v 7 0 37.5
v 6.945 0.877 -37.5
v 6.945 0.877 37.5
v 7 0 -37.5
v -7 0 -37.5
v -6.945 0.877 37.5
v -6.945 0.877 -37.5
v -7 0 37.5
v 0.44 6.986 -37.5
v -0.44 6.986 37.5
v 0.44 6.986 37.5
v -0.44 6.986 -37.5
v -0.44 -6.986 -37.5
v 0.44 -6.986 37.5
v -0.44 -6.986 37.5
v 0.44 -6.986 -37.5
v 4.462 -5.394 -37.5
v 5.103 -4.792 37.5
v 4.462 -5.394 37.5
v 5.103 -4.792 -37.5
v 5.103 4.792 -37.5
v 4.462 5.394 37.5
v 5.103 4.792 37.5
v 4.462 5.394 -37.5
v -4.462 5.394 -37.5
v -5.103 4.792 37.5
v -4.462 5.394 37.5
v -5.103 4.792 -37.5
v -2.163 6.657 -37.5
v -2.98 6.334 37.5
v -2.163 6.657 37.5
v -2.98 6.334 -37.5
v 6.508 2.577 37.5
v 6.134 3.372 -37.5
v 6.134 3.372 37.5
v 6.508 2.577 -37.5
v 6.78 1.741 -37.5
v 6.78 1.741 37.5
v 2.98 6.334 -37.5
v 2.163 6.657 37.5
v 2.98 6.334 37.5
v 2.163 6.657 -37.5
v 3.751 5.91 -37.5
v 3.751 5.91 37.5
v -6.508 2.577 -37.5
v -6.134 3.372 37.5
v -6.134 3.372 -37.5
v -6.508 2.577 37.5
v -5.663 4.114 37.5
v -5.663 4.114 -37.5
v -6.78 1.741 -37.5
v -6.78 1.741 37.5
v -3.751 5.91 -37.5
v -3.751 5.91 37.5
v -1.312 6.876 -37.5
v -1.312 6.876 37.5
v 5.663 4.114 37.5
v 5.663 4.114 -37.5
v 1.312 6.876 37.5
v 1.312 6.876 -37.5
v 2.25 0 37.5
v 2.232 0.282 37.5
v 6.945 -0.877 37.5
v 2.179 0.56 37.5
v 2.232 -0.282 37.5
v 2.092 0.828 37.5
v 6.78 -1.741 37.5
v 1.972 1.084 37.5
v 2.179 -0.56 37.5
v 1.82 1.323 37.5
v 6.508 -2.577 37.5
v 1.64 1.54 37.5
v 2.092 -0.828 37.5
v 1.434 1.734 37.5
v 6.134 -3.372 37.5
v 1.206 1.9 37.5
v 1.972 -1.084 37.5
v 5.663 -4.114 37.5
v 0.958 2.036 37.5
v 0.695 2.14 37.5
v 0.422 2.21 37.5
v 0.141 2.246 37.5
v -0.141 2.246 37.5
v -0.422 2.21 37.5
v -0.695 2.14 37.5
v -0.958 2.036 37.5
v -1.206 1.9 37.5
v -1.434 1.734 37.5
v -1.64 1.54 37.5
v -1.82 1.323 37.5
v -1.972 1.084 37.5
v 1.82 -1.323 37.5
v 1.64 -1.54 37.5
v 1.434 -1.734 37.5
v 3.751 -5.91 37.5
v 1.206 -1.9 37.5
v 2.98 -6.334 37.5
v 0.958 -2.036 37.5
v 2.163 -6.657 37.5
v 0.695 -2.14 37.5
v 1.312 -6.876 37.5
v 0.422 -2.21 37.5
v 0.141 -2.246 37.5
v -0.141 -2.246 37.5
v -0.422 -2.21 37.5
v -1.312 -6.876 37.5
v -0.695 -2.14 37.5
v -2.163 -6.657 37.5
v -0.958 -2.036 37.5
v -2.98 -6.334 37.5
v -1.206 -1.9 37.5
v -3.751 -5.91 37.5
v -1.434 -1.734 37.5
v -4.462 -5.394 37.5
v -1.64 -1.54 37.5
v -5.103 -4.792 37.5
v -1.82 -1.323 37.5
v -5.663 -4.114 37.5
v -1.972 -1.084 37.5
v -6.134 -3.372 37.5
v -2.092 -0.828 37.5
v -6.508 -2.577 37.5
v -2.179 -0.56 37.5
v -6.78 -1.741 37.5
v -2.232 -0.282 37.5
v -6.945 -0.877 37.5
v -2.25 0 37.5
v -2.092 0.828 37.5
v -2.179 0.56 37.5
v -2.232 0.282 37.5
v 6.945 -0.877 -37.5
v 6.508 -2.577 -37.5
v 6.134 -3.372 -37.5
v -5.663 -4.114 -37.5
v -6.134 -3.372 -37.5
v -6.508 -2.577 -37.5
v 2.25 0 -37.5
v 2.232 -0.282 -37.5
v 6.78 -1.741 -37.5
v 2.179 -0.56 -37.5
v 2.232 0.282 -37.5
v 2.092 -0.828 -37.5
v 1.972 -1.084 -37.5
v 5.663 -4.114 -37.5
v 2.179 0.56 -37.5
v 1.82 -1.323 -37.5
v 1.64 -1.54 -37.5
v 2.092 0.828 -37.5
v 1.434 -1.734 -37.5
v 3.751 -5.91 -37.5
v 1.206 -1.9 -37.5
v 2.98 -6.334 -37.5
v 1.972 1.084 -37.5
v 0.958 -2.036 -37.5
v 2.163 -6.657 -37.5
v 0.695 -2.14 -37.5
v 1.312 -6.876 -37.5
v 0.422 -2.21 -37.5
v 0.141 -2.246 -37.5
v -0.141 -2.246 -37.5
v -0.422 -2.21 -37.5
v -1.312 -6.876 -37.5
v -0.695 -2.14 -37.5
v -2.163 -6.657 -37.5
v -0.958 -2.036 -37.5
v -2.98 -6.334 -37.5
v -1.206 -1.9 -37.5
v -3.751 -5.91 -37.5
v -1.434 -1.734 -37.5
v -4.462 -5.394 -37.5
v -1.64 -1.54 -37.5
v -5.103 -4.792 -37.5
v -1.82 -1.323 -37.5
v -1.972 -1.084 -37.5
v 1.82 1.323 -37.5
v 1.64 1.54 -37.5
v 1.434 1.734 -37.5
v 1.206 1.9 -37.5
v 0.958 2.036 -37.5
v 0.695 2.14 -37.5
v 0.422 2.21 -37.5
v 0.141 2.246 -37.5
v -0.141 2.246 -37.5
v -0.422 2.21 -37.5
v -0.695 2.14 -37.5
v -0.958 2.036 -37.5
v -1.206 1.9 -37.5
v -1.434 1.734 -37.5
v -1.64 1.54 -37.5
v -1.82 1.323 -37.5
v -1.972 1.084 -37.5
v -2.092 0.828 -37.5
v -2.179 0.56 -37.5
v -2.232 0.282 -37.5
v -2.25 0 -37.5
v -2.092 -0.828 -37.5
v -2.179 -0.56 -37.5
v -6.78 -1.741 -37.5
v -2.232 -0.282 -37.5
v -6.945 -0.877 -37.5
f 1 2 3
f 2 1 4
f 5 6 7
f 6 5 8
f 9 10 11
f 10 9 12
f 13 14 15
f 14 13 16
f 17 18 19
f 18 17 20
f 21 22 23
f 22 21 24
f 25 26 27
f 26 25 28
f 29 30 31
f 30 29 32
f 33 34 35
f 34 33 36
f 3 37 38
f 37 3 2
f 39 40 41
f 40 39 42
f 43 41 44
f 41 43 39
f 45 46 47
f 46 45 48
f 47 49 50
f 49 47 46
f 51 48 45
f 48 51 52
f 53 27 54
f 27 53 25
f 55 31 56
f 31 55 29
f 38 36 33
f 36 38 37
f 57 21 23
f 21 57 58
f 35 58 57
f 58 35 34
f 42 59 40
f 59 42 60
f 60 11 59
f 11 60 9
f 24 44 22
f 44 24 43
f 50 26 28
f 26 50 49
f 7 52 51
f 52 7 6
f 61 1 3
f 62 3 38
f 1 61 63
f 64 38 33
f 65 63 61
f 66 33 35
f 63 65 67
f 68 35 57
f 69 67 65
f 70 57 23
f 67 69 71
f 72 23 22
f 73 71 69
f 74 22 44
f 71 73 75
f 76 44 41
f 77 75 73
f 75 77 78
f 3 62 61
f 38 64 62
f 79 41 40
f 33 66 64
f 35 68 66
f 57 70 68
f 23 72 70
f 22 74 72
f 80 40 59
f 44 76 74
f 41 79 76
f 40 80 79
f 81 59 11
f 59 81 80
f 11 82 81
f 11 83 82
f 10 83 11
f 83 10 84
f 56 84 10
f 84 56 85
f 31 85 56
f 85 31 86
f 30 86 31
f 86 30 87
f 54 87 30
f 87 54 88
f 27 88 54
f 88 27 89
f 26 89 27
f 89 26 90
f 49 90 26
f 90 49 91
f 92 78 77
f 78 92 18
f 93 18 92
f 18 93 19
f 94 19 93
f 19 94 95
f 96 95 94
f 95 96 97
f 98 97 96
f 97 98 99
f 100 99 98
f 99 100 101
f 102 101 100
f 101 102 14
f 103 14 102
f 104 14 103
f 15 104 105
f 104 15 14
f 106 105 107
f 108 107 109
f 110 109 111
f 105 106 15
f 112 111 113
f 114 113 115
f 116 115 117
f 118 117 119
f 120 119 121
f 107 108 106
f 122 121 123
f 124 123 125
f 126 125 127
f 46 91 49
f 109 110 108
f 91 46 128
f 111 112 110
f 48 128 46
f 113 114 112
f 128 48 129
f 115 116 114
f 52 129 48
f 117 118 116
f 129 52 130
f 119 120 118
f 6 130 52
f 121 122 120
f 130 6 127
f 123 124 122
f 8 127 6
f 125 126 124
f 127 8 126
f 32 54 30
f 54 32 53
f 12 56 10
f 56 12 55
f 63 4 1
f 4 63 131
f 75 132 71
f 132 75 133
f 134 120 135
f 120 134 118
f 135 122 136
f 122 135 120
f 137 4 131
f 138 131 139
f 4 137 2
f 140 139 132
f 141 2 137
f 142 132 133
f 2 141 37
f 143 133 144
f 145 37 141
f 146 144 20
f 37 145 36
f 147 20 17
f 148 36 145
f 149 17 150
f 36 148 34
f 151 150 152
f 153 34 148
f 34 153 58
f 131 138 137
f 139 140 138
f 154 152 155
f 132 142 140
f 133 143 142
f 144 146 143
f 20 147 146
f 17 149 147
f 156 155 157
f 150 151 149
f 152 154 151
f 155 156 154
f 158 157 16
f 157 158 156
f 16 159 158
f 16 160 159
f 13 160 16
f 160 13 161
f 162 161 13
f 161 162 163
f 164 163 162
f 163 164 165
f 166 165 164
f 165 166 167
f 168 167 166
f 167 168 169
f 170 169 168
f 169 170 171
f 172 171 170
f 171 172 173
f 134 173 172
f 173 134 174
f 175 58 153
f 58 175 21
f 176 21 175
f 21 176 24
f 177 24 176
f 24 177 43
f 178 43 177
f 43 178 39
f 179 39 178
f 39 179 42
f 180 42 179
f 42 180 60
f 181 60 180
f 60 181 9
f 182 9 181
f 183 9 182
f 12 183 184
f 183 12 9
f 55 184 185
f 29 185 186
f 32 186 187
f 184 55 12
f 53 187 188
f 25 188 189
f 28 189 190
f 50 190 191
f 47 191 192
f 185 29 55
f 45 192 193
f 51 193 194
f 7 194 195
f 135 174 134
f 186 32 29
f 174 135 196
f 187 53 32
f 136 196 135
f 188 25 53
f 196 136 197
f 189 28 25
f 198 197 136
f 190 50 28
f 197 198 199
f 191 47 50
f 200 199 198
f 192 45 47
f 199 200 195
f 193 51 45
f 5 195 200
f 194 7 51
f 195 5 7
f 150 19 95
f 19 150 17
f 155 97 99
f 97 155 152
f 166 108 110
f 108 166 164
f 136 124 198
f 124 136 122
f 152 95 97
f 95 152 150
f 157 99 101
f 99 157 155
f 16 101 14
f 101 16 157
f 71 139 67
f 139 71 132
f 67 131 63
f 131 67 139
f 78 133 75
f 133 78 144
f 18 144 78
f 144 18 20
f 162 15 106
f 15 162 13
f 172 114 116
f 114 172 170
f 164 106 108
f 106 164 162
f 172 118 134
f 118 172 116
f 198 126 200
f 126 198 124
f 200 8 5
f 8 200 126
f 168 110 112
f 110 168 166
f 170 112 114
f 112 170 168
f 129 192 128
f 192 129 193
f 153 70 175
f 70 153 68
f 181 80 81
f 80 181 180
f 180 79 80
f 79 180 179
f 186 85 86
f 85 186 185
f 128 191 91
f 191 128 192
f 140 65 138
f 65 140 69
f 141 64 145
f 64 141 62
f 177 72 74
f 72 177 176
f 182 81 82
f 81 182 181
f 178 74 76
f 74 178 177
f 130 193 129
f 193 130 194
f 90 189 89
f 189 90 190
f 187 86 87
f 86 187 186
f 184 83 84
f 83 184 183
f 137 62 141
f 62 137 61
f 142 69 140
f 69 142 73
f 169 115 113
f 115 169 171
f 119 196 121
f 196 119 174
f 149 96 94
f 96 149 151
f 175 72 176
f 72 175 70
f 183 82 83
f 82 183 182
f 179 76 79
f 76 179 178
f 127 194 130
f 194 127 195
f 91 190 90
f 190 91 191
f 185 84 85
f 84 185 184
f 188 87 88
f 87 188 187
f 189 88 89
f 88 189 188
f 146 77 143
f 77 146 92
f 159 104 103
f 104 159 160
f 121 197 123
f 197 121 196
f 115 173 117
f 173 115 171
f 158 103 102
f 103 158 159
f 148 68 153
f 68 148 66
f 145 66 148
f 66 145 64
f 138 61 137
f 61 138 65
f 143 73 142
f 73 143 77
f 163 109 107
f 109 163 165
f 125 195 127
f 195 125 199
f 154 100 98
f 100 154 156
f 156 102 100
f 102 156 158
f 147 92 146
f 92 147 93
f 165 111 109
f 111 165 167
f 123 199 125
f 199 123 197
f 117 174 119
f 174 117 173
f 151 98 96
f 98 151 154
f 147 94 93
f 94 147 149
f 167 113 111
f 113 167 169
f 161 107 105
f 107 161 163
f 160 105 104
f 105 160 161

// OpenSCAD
$fn = 50;


difference() {
	union() {
		translate(v = [0, 0, -37.5000000000]) {
			cylinder(h = 75, r = 7.0000000000);
		}
	}
	union() {
		translate(v = [0, 0, -100.0000000000]) {
			cylinder(h = 200, r = 2.2500000000);
		}
	}
}
